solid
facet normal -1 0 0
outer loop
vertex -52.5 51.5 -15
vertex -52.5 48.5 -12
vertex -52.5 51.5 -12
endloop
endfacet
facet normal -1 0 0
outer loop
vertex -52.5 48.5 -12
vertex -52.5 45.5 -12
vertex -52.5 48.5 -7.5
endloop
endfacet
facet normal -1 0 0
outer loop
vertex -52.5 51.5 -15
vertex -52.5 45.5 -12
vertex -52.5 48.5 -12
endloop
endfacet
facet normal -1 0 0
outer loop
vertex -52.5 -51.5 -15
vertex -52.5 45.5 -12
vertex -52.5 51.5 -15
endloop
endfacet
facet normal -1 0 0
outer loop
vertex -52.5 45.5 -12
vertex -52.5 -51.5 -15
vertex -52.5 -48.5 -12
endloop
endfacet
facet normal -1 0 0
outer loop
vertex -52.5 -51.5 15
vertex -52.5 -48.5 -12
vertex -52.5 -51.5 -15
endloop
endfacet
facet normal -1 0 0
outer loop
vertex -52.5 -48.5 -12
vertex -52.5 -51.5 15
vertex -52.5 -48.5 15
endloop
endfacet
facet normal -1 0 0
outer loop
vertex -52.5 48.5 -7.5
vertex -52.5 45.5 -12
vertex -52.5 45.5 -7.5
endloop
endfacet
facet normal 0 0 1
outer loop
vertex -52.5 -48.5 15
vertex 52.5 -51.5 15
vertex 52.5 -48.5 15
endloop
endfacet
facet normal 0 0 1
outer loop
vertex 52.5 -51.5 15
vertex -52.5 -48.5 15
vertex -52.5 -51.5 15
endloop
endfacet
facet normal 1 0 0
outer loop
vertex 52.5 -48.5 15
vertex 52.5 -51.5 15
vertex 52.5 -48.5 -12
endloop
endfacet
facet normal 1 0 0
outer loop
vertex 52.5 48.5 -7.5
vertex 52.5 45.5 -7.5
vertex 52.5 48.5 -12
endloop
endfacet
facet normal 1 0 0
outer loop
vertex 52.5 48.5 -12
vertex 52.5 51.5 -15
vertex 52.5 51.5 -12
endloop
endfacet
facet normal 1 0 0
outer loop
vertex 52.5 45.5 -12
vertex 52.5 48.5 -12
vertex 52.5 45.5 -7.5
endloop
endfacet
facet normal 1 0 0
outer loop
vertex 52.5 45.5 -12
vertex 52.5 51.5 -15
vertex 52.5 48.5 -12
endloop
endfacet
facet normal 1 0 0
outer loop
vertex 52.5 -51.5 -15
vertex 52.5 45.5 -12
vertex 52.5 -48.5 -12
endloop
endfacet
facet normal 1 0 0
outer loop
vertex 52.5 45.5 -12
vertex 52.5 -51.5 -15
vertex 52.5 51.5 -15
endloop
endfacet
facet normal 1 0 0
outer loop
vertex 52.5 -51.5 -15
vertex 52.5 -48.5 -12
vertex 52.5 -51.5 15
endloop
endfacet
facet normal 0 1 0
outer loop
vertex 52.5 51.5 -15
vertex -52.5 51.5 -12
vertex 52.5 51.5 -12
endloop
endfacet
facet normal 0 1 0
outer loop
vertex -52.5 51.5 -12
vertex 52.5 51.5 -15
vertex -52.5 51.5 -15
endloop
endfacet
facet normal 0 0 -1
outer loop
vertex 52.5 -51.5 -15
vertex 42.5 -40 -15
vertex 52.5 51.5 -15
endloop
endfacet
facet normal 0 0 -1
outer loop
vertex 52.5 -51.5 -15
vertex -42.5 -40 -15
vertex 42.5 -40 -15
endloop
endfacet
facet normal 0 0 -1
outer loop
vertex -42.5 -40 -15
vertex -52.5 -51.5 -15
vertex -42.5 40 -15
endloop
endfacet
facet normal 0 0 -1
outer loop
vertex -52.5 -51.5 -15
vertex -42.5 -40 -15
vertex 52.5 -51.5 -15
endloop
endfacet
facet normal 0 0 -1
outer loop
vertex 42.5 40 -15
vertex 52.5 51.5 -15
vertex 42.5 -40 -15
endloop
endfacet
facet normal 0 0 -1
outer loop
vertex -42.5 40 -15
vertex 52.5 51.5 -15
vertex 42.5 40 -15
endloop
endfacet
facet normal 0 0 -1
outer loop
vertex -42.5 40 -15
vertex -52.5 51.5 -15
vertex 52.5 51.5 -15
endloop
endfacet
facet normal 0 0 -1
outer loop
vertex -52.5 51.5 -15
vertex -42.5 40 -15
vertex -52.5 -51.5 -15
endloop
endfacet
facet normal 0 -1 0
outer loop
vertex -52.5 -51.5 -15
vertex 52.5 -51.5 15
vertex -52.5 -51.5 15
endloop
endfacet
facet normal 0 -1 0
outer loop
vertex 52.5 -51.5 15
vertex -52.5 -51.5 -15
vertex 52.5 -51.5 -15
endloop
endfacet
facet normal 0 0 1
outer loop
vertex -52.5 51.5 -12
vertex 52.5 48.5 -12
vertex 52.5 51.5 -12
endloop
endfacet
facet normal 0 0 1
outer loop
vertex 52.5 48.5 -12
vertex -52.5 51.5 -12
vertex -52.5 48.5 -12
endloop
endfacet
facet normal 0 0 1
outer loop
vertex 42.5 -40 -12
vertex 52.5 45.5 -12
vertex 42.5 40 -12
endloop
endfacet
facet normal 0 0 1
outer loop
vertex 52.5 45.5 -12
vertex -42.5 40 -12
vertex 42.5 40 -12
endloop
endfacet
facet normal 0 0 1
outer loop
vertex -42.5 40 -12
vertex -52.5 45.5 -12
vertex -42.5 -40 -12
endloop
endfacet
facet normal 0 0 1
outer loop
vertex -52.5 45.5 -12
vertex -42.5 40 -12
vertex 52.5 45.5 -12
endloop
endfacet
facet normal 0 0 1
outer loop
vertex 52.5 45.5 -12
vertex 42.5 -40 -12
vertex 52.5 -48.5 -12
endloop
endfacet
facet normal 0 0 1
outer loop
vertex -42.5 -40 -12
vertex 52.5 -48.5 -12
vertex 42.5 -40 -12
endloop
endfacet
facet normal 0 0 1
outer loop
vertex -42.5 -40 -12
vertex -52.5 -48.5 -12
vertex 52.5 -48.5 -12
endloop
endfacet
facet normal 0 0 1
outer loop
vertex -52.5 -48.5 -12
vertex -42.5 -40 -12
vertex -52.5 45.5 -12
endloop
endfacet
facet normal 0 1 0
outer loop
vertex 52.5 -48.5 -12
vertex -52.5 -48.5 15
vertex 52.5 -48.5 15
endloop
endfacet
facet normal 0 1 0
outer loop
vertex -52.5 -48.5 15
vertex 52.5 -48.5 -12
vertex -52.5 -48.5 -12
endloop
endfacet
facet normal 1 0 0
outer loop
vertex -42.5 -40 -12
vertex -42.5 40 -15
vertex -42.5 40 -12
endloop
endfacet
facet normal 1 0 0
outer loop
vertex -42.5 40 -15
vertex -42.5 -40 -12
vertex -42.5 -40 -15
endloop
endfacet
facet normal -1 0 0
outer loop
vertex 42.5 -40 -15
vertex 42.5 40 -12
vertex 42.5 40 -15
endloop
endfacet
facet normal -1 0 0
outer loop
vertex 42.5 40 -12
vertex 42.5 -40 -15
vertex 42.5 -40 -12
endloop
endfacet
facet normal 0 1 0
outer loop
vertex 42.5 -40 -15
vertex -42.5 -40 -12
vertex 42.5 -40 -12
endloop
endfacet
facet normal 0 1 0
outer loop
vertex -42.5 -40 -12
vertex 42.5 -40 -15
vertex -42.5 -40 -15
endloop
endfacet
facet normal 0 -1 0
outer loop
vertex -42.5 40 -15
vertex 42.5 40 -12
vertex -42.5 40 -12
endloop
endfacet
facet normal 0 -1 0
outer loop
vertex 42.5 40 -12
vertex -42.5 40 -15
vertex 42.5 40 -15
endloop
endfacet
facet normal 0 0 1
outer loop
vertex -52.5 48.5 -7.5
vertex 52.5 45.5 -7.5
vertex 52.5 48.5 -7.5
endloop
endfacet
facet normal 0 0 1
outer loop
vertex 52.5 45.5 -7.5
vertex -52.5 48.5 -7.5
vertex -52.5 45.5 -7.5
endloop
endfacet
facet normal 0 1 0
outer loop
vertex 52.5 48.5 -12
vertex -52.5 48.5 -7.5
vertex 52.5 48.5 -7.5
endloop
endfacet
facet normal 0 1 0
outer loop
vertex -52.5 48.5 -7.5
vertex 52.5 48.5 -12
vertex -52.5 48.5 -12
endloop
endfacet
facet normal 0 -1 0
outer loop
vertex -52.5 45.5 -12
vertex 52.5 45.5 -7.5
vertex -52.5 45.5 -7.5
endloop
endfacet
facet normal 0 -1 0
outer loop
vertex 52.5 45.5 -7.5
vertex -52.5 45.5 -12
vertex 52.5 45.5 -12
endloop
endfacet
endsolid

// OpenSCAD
module stand()
{
  len_x = 105;

  frame_len = 100;
  frame_height = 30;
  frame_thickness = 3;
    
  int_len_x = 100;
  int_len_y = 40;
  int_len_z = 10;

  difference() {
    cube([len_x, frame_len+frame_thickness, frame_height], center = true);
    translate([0, 
               frame_thickness, 
               frame_thickness]) {
      cube([len_x+1, frame_len+frame_thickness, frame_height], center = true);
    }
    translate([0, 
               0, 
               0]) {
      cube([85, 80, 100], center = true);
    }
  }
  translate([0, 
             frame_len/2 - frame_thickness, 
             -frame_height/2+frame_thickness+1]) {
    cube([len_x, 3, 7], center = true);
  }
}

stand();
